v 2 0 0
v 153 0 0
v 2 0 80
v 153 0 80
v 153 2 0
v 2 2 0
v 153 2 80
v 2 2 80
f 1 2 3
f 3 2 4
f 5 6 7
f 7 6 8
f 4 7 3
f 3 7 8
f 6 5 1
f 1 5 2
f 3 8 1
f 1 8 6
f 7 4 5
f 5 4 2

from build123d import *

# Parameters (mm, degrees)
SKETCH1_W           = 155
SKETCH1_H           = 110
BOSS_EXTRUDE1_DEPTH = 80
SKETCH2_W           = 151
SKETCH2_H           = 106
CUT_EXTRUDE1_DEPTH  = 78
SKETCH3_R           = 2.5
CUT_EXTRUDE2_DEPTH  = 2
SKETCH7_R           = 1.6
CUT_EXTRUDE7_DEPTH  = 2
SKETCH4_W           = 27.5
SKETCH4_H           = 46.8
CUT_EXTRUDE8_DEPTH  = 2
SKETCH8_W           = 4
SKETCH8_H           = 53
CUT_EXTRUDE9_DEPTH  = 2
SKETCH9_W           = 14
SKETCH9_H           = 14
CUT_EXTRUDE10_DEPTH = 2
SKETCH10_W          = 25.2
SKETCH10_H          = 71.2
SKETCH10_R          = 1.25
CUT_EXTRUDE12_DEPTH = 2
SKETCH11_R          = 2.5
SKETCH11_R_2        = 4.5
CUT_EXTRUDE13_DEPTH = 2
SKETCH12_W          = 151
SKETCH12_H          = 108
CUT_EXTRUDE14_DEPTH = 80


with BuildPart() as part:
    # Sketch1 → Boss-Extrude1 (new body)
    with BuildSketch(Plane.XY):
        with Locations((77.5, 55)):
            Rectangle(SKETCH1_W, SKETCH1_H)
    extrude(amount=BOSS_EXTRUDE1_DEPTH)

    # Sketch2 → Cut-Extrude1 (cut)
    with BuildSketch(Plane.XY.offset(80)):
        with Locations((77.5, 55)):
            Rectangle(SKETCH2_W, SKETCH2_H)
    extrude(amount=-CUT_EXTRUDE1_DEPTH, mode=Mode.SUBTRACT)

    # Sketch3 → Cut-Extrude2 (cut)
    with BuildSketch(Plane.XY.offset(2)):
        with Locations((145, 100.5)):
            Circle(SKETCH3_R)
        with Locations((145, 9.5)):
            Circle(SKETCH3_R)
        with Locations((10, 9.5)):
            Circle(SKETCH3_R)
        with Locations((10, 100.5)):
            Circle(SKETCH3_R)
    extrude(amount=-CUT_EXTRUDE2_DEPTH, mode=Mode.SUBTRACT)

    # Sketch7 → Cut-Extrude7 (cut)
    with BuildSketch(Plane(origin=(0, 110, 0), x_dir=(1, 0, 0), z_dir=(0, 1, 0))):
        with Locations((44.48, -20.14450396)):
            Circle(SKETCH7_R)
        with Locations((95.28, -17.14)):
            Circle(SKETCH7_R)
        with Locations((95.28, -62.86)):
            Circle(SKETCH7_R)
        with Locations((44.48, -47.62)):
            Circle(SKETCH7_R)
    extrude(amount=-CUT_EXTRUDE7_DEPTH, mode=Mode.SUBTRACT)

    # Sketch4 → Cut-Extrude8 (cut)
    with BuildSketch(Plane(origin=(155, 0, 0), x_dir=(0, 0, -1), z_dir=(1, 0, 0))):
        with Locations((-40, 82.5)):
            Rectangle(SKETCH4_W, SKETCH4_H)
    extrude(amount=-CUT_EXTRUDE8_DEPTH, mode=Mode.SUBTRACT)

    # Sketch8 → Cut-Extrude9 (cut)
    with BuildSketch(Plane(origin=(155, 0, 0), x_dir=(0, 0, -1), z_dir=(1, 0, 0))):
        with Locations((-68, 28.5)):
            Rectangle(SKETCH8_W, SKETCH8_H)
        with Locations((-76, 28.5)):
            Rectangle(SKETCH8_W, SKETCH8_H)
        with Locations((-60, 28.5)):
            Rectangle(SKETCH8_W, SKETCH8_H)
        with Locations((-52, 28.5)):
            Rectangle(SKETCH8_W, SKETCH8_H)
        with Locations((-44, 28.5)):
            Rectangle(SKETCH8_W, SKETCH8_H)
        with Locations((-36, 28.5)):
            Rectangle(SKETCH8_W, SKETCH8_H)
        with Locations((-28, 28.5)):
            Rectangle(SKETCH8_W, SKETCH8_H)
        with Locations((-20, 28.5)):
            Rectangle(SKETCH8_W, SKETCH8_H)
        with Locations((-12, 28.5)):
            Rectangle(SKETCH8_W, SKETCH8_H)
        with Locations((-4, 28.5)):
            Rectangle(SKETCH8_W, SKETCH8_H)
    extrude(amount=-CUT_EXTRUDE9_DEPTH, mode=Mode.SUBTRACT)

    # Sketch9 → Cut-Extrude10 (cut)
    with BuildSketch(Plane(origin=(0, 110, 0), x_dir=(1, 0, 0), z_dir=(0, 1, 0))):
        with Locations((120, -19)):
            Rectangle(SKETCH9_W, SKETCH9_H)
    extrude(amount=-CUT_EXTRUDE10_DEPTH, mode=Mode.SUBTRACT)

    # Sketch10 → Cut-Extrude12 (cut)
    with BuildSketch(Plane.ZY):
        with Locations((58, 55)):
            Rectangle(SKETCH10_W, SKETCH10_H)
        with Locations((42.5, 92.5)):
            Circle(SKETCH10_R)
        with Locations((73.5, 92.5)):
            Circle(SKETCH10_R)
        with Locations((42.5, 17.5)):
            Circle(SKETCH10_R)
        with Locations((73.5, 17.5)):
            Circle(SKETCH10_R)
    extrude(amount=-CUT_EXTRUDE12_DEPTH, mode=Mode.SUBTRACT)

    # Sketch11 → Cut-Extrude13 (cut)
    with BuildSketch(Plane.ZY):
        with Locations((20, 55)):
            Circle(SKETCH11_R)
        with Locations((20, 40)):
            Circle(SKETCH11_R)
        with Locations((20, 25)):
            Circle(SKETCH11_R)
        with Locations((20, 82.5)):
            Circle(SKETCH11_R_2)
    extrude(amount=-CUT_EXTRUDE13_DEPTH, mode=Mode.SUBTRACT)

    # Sketch12 → Cut-Extrude14 (cut)
    with BuildSketch(Plane.XY.offset(80)):
        Polygon((153, 2), (153, 0), (155, 0), (155, 110), (153, 110), align=None)
        with Locations((77.5, 56)):
            Rectangle(SKETCH12_W, SKETCH12_H)
        Polygon((2, 0), (2, 2), (2, 110), (0, 110), (0, 0), align=None)
    extrude(amount=-CUT_EXTRUDE14_DEPTH, mode=Mode.SUBTRACT)


solid = part.part
